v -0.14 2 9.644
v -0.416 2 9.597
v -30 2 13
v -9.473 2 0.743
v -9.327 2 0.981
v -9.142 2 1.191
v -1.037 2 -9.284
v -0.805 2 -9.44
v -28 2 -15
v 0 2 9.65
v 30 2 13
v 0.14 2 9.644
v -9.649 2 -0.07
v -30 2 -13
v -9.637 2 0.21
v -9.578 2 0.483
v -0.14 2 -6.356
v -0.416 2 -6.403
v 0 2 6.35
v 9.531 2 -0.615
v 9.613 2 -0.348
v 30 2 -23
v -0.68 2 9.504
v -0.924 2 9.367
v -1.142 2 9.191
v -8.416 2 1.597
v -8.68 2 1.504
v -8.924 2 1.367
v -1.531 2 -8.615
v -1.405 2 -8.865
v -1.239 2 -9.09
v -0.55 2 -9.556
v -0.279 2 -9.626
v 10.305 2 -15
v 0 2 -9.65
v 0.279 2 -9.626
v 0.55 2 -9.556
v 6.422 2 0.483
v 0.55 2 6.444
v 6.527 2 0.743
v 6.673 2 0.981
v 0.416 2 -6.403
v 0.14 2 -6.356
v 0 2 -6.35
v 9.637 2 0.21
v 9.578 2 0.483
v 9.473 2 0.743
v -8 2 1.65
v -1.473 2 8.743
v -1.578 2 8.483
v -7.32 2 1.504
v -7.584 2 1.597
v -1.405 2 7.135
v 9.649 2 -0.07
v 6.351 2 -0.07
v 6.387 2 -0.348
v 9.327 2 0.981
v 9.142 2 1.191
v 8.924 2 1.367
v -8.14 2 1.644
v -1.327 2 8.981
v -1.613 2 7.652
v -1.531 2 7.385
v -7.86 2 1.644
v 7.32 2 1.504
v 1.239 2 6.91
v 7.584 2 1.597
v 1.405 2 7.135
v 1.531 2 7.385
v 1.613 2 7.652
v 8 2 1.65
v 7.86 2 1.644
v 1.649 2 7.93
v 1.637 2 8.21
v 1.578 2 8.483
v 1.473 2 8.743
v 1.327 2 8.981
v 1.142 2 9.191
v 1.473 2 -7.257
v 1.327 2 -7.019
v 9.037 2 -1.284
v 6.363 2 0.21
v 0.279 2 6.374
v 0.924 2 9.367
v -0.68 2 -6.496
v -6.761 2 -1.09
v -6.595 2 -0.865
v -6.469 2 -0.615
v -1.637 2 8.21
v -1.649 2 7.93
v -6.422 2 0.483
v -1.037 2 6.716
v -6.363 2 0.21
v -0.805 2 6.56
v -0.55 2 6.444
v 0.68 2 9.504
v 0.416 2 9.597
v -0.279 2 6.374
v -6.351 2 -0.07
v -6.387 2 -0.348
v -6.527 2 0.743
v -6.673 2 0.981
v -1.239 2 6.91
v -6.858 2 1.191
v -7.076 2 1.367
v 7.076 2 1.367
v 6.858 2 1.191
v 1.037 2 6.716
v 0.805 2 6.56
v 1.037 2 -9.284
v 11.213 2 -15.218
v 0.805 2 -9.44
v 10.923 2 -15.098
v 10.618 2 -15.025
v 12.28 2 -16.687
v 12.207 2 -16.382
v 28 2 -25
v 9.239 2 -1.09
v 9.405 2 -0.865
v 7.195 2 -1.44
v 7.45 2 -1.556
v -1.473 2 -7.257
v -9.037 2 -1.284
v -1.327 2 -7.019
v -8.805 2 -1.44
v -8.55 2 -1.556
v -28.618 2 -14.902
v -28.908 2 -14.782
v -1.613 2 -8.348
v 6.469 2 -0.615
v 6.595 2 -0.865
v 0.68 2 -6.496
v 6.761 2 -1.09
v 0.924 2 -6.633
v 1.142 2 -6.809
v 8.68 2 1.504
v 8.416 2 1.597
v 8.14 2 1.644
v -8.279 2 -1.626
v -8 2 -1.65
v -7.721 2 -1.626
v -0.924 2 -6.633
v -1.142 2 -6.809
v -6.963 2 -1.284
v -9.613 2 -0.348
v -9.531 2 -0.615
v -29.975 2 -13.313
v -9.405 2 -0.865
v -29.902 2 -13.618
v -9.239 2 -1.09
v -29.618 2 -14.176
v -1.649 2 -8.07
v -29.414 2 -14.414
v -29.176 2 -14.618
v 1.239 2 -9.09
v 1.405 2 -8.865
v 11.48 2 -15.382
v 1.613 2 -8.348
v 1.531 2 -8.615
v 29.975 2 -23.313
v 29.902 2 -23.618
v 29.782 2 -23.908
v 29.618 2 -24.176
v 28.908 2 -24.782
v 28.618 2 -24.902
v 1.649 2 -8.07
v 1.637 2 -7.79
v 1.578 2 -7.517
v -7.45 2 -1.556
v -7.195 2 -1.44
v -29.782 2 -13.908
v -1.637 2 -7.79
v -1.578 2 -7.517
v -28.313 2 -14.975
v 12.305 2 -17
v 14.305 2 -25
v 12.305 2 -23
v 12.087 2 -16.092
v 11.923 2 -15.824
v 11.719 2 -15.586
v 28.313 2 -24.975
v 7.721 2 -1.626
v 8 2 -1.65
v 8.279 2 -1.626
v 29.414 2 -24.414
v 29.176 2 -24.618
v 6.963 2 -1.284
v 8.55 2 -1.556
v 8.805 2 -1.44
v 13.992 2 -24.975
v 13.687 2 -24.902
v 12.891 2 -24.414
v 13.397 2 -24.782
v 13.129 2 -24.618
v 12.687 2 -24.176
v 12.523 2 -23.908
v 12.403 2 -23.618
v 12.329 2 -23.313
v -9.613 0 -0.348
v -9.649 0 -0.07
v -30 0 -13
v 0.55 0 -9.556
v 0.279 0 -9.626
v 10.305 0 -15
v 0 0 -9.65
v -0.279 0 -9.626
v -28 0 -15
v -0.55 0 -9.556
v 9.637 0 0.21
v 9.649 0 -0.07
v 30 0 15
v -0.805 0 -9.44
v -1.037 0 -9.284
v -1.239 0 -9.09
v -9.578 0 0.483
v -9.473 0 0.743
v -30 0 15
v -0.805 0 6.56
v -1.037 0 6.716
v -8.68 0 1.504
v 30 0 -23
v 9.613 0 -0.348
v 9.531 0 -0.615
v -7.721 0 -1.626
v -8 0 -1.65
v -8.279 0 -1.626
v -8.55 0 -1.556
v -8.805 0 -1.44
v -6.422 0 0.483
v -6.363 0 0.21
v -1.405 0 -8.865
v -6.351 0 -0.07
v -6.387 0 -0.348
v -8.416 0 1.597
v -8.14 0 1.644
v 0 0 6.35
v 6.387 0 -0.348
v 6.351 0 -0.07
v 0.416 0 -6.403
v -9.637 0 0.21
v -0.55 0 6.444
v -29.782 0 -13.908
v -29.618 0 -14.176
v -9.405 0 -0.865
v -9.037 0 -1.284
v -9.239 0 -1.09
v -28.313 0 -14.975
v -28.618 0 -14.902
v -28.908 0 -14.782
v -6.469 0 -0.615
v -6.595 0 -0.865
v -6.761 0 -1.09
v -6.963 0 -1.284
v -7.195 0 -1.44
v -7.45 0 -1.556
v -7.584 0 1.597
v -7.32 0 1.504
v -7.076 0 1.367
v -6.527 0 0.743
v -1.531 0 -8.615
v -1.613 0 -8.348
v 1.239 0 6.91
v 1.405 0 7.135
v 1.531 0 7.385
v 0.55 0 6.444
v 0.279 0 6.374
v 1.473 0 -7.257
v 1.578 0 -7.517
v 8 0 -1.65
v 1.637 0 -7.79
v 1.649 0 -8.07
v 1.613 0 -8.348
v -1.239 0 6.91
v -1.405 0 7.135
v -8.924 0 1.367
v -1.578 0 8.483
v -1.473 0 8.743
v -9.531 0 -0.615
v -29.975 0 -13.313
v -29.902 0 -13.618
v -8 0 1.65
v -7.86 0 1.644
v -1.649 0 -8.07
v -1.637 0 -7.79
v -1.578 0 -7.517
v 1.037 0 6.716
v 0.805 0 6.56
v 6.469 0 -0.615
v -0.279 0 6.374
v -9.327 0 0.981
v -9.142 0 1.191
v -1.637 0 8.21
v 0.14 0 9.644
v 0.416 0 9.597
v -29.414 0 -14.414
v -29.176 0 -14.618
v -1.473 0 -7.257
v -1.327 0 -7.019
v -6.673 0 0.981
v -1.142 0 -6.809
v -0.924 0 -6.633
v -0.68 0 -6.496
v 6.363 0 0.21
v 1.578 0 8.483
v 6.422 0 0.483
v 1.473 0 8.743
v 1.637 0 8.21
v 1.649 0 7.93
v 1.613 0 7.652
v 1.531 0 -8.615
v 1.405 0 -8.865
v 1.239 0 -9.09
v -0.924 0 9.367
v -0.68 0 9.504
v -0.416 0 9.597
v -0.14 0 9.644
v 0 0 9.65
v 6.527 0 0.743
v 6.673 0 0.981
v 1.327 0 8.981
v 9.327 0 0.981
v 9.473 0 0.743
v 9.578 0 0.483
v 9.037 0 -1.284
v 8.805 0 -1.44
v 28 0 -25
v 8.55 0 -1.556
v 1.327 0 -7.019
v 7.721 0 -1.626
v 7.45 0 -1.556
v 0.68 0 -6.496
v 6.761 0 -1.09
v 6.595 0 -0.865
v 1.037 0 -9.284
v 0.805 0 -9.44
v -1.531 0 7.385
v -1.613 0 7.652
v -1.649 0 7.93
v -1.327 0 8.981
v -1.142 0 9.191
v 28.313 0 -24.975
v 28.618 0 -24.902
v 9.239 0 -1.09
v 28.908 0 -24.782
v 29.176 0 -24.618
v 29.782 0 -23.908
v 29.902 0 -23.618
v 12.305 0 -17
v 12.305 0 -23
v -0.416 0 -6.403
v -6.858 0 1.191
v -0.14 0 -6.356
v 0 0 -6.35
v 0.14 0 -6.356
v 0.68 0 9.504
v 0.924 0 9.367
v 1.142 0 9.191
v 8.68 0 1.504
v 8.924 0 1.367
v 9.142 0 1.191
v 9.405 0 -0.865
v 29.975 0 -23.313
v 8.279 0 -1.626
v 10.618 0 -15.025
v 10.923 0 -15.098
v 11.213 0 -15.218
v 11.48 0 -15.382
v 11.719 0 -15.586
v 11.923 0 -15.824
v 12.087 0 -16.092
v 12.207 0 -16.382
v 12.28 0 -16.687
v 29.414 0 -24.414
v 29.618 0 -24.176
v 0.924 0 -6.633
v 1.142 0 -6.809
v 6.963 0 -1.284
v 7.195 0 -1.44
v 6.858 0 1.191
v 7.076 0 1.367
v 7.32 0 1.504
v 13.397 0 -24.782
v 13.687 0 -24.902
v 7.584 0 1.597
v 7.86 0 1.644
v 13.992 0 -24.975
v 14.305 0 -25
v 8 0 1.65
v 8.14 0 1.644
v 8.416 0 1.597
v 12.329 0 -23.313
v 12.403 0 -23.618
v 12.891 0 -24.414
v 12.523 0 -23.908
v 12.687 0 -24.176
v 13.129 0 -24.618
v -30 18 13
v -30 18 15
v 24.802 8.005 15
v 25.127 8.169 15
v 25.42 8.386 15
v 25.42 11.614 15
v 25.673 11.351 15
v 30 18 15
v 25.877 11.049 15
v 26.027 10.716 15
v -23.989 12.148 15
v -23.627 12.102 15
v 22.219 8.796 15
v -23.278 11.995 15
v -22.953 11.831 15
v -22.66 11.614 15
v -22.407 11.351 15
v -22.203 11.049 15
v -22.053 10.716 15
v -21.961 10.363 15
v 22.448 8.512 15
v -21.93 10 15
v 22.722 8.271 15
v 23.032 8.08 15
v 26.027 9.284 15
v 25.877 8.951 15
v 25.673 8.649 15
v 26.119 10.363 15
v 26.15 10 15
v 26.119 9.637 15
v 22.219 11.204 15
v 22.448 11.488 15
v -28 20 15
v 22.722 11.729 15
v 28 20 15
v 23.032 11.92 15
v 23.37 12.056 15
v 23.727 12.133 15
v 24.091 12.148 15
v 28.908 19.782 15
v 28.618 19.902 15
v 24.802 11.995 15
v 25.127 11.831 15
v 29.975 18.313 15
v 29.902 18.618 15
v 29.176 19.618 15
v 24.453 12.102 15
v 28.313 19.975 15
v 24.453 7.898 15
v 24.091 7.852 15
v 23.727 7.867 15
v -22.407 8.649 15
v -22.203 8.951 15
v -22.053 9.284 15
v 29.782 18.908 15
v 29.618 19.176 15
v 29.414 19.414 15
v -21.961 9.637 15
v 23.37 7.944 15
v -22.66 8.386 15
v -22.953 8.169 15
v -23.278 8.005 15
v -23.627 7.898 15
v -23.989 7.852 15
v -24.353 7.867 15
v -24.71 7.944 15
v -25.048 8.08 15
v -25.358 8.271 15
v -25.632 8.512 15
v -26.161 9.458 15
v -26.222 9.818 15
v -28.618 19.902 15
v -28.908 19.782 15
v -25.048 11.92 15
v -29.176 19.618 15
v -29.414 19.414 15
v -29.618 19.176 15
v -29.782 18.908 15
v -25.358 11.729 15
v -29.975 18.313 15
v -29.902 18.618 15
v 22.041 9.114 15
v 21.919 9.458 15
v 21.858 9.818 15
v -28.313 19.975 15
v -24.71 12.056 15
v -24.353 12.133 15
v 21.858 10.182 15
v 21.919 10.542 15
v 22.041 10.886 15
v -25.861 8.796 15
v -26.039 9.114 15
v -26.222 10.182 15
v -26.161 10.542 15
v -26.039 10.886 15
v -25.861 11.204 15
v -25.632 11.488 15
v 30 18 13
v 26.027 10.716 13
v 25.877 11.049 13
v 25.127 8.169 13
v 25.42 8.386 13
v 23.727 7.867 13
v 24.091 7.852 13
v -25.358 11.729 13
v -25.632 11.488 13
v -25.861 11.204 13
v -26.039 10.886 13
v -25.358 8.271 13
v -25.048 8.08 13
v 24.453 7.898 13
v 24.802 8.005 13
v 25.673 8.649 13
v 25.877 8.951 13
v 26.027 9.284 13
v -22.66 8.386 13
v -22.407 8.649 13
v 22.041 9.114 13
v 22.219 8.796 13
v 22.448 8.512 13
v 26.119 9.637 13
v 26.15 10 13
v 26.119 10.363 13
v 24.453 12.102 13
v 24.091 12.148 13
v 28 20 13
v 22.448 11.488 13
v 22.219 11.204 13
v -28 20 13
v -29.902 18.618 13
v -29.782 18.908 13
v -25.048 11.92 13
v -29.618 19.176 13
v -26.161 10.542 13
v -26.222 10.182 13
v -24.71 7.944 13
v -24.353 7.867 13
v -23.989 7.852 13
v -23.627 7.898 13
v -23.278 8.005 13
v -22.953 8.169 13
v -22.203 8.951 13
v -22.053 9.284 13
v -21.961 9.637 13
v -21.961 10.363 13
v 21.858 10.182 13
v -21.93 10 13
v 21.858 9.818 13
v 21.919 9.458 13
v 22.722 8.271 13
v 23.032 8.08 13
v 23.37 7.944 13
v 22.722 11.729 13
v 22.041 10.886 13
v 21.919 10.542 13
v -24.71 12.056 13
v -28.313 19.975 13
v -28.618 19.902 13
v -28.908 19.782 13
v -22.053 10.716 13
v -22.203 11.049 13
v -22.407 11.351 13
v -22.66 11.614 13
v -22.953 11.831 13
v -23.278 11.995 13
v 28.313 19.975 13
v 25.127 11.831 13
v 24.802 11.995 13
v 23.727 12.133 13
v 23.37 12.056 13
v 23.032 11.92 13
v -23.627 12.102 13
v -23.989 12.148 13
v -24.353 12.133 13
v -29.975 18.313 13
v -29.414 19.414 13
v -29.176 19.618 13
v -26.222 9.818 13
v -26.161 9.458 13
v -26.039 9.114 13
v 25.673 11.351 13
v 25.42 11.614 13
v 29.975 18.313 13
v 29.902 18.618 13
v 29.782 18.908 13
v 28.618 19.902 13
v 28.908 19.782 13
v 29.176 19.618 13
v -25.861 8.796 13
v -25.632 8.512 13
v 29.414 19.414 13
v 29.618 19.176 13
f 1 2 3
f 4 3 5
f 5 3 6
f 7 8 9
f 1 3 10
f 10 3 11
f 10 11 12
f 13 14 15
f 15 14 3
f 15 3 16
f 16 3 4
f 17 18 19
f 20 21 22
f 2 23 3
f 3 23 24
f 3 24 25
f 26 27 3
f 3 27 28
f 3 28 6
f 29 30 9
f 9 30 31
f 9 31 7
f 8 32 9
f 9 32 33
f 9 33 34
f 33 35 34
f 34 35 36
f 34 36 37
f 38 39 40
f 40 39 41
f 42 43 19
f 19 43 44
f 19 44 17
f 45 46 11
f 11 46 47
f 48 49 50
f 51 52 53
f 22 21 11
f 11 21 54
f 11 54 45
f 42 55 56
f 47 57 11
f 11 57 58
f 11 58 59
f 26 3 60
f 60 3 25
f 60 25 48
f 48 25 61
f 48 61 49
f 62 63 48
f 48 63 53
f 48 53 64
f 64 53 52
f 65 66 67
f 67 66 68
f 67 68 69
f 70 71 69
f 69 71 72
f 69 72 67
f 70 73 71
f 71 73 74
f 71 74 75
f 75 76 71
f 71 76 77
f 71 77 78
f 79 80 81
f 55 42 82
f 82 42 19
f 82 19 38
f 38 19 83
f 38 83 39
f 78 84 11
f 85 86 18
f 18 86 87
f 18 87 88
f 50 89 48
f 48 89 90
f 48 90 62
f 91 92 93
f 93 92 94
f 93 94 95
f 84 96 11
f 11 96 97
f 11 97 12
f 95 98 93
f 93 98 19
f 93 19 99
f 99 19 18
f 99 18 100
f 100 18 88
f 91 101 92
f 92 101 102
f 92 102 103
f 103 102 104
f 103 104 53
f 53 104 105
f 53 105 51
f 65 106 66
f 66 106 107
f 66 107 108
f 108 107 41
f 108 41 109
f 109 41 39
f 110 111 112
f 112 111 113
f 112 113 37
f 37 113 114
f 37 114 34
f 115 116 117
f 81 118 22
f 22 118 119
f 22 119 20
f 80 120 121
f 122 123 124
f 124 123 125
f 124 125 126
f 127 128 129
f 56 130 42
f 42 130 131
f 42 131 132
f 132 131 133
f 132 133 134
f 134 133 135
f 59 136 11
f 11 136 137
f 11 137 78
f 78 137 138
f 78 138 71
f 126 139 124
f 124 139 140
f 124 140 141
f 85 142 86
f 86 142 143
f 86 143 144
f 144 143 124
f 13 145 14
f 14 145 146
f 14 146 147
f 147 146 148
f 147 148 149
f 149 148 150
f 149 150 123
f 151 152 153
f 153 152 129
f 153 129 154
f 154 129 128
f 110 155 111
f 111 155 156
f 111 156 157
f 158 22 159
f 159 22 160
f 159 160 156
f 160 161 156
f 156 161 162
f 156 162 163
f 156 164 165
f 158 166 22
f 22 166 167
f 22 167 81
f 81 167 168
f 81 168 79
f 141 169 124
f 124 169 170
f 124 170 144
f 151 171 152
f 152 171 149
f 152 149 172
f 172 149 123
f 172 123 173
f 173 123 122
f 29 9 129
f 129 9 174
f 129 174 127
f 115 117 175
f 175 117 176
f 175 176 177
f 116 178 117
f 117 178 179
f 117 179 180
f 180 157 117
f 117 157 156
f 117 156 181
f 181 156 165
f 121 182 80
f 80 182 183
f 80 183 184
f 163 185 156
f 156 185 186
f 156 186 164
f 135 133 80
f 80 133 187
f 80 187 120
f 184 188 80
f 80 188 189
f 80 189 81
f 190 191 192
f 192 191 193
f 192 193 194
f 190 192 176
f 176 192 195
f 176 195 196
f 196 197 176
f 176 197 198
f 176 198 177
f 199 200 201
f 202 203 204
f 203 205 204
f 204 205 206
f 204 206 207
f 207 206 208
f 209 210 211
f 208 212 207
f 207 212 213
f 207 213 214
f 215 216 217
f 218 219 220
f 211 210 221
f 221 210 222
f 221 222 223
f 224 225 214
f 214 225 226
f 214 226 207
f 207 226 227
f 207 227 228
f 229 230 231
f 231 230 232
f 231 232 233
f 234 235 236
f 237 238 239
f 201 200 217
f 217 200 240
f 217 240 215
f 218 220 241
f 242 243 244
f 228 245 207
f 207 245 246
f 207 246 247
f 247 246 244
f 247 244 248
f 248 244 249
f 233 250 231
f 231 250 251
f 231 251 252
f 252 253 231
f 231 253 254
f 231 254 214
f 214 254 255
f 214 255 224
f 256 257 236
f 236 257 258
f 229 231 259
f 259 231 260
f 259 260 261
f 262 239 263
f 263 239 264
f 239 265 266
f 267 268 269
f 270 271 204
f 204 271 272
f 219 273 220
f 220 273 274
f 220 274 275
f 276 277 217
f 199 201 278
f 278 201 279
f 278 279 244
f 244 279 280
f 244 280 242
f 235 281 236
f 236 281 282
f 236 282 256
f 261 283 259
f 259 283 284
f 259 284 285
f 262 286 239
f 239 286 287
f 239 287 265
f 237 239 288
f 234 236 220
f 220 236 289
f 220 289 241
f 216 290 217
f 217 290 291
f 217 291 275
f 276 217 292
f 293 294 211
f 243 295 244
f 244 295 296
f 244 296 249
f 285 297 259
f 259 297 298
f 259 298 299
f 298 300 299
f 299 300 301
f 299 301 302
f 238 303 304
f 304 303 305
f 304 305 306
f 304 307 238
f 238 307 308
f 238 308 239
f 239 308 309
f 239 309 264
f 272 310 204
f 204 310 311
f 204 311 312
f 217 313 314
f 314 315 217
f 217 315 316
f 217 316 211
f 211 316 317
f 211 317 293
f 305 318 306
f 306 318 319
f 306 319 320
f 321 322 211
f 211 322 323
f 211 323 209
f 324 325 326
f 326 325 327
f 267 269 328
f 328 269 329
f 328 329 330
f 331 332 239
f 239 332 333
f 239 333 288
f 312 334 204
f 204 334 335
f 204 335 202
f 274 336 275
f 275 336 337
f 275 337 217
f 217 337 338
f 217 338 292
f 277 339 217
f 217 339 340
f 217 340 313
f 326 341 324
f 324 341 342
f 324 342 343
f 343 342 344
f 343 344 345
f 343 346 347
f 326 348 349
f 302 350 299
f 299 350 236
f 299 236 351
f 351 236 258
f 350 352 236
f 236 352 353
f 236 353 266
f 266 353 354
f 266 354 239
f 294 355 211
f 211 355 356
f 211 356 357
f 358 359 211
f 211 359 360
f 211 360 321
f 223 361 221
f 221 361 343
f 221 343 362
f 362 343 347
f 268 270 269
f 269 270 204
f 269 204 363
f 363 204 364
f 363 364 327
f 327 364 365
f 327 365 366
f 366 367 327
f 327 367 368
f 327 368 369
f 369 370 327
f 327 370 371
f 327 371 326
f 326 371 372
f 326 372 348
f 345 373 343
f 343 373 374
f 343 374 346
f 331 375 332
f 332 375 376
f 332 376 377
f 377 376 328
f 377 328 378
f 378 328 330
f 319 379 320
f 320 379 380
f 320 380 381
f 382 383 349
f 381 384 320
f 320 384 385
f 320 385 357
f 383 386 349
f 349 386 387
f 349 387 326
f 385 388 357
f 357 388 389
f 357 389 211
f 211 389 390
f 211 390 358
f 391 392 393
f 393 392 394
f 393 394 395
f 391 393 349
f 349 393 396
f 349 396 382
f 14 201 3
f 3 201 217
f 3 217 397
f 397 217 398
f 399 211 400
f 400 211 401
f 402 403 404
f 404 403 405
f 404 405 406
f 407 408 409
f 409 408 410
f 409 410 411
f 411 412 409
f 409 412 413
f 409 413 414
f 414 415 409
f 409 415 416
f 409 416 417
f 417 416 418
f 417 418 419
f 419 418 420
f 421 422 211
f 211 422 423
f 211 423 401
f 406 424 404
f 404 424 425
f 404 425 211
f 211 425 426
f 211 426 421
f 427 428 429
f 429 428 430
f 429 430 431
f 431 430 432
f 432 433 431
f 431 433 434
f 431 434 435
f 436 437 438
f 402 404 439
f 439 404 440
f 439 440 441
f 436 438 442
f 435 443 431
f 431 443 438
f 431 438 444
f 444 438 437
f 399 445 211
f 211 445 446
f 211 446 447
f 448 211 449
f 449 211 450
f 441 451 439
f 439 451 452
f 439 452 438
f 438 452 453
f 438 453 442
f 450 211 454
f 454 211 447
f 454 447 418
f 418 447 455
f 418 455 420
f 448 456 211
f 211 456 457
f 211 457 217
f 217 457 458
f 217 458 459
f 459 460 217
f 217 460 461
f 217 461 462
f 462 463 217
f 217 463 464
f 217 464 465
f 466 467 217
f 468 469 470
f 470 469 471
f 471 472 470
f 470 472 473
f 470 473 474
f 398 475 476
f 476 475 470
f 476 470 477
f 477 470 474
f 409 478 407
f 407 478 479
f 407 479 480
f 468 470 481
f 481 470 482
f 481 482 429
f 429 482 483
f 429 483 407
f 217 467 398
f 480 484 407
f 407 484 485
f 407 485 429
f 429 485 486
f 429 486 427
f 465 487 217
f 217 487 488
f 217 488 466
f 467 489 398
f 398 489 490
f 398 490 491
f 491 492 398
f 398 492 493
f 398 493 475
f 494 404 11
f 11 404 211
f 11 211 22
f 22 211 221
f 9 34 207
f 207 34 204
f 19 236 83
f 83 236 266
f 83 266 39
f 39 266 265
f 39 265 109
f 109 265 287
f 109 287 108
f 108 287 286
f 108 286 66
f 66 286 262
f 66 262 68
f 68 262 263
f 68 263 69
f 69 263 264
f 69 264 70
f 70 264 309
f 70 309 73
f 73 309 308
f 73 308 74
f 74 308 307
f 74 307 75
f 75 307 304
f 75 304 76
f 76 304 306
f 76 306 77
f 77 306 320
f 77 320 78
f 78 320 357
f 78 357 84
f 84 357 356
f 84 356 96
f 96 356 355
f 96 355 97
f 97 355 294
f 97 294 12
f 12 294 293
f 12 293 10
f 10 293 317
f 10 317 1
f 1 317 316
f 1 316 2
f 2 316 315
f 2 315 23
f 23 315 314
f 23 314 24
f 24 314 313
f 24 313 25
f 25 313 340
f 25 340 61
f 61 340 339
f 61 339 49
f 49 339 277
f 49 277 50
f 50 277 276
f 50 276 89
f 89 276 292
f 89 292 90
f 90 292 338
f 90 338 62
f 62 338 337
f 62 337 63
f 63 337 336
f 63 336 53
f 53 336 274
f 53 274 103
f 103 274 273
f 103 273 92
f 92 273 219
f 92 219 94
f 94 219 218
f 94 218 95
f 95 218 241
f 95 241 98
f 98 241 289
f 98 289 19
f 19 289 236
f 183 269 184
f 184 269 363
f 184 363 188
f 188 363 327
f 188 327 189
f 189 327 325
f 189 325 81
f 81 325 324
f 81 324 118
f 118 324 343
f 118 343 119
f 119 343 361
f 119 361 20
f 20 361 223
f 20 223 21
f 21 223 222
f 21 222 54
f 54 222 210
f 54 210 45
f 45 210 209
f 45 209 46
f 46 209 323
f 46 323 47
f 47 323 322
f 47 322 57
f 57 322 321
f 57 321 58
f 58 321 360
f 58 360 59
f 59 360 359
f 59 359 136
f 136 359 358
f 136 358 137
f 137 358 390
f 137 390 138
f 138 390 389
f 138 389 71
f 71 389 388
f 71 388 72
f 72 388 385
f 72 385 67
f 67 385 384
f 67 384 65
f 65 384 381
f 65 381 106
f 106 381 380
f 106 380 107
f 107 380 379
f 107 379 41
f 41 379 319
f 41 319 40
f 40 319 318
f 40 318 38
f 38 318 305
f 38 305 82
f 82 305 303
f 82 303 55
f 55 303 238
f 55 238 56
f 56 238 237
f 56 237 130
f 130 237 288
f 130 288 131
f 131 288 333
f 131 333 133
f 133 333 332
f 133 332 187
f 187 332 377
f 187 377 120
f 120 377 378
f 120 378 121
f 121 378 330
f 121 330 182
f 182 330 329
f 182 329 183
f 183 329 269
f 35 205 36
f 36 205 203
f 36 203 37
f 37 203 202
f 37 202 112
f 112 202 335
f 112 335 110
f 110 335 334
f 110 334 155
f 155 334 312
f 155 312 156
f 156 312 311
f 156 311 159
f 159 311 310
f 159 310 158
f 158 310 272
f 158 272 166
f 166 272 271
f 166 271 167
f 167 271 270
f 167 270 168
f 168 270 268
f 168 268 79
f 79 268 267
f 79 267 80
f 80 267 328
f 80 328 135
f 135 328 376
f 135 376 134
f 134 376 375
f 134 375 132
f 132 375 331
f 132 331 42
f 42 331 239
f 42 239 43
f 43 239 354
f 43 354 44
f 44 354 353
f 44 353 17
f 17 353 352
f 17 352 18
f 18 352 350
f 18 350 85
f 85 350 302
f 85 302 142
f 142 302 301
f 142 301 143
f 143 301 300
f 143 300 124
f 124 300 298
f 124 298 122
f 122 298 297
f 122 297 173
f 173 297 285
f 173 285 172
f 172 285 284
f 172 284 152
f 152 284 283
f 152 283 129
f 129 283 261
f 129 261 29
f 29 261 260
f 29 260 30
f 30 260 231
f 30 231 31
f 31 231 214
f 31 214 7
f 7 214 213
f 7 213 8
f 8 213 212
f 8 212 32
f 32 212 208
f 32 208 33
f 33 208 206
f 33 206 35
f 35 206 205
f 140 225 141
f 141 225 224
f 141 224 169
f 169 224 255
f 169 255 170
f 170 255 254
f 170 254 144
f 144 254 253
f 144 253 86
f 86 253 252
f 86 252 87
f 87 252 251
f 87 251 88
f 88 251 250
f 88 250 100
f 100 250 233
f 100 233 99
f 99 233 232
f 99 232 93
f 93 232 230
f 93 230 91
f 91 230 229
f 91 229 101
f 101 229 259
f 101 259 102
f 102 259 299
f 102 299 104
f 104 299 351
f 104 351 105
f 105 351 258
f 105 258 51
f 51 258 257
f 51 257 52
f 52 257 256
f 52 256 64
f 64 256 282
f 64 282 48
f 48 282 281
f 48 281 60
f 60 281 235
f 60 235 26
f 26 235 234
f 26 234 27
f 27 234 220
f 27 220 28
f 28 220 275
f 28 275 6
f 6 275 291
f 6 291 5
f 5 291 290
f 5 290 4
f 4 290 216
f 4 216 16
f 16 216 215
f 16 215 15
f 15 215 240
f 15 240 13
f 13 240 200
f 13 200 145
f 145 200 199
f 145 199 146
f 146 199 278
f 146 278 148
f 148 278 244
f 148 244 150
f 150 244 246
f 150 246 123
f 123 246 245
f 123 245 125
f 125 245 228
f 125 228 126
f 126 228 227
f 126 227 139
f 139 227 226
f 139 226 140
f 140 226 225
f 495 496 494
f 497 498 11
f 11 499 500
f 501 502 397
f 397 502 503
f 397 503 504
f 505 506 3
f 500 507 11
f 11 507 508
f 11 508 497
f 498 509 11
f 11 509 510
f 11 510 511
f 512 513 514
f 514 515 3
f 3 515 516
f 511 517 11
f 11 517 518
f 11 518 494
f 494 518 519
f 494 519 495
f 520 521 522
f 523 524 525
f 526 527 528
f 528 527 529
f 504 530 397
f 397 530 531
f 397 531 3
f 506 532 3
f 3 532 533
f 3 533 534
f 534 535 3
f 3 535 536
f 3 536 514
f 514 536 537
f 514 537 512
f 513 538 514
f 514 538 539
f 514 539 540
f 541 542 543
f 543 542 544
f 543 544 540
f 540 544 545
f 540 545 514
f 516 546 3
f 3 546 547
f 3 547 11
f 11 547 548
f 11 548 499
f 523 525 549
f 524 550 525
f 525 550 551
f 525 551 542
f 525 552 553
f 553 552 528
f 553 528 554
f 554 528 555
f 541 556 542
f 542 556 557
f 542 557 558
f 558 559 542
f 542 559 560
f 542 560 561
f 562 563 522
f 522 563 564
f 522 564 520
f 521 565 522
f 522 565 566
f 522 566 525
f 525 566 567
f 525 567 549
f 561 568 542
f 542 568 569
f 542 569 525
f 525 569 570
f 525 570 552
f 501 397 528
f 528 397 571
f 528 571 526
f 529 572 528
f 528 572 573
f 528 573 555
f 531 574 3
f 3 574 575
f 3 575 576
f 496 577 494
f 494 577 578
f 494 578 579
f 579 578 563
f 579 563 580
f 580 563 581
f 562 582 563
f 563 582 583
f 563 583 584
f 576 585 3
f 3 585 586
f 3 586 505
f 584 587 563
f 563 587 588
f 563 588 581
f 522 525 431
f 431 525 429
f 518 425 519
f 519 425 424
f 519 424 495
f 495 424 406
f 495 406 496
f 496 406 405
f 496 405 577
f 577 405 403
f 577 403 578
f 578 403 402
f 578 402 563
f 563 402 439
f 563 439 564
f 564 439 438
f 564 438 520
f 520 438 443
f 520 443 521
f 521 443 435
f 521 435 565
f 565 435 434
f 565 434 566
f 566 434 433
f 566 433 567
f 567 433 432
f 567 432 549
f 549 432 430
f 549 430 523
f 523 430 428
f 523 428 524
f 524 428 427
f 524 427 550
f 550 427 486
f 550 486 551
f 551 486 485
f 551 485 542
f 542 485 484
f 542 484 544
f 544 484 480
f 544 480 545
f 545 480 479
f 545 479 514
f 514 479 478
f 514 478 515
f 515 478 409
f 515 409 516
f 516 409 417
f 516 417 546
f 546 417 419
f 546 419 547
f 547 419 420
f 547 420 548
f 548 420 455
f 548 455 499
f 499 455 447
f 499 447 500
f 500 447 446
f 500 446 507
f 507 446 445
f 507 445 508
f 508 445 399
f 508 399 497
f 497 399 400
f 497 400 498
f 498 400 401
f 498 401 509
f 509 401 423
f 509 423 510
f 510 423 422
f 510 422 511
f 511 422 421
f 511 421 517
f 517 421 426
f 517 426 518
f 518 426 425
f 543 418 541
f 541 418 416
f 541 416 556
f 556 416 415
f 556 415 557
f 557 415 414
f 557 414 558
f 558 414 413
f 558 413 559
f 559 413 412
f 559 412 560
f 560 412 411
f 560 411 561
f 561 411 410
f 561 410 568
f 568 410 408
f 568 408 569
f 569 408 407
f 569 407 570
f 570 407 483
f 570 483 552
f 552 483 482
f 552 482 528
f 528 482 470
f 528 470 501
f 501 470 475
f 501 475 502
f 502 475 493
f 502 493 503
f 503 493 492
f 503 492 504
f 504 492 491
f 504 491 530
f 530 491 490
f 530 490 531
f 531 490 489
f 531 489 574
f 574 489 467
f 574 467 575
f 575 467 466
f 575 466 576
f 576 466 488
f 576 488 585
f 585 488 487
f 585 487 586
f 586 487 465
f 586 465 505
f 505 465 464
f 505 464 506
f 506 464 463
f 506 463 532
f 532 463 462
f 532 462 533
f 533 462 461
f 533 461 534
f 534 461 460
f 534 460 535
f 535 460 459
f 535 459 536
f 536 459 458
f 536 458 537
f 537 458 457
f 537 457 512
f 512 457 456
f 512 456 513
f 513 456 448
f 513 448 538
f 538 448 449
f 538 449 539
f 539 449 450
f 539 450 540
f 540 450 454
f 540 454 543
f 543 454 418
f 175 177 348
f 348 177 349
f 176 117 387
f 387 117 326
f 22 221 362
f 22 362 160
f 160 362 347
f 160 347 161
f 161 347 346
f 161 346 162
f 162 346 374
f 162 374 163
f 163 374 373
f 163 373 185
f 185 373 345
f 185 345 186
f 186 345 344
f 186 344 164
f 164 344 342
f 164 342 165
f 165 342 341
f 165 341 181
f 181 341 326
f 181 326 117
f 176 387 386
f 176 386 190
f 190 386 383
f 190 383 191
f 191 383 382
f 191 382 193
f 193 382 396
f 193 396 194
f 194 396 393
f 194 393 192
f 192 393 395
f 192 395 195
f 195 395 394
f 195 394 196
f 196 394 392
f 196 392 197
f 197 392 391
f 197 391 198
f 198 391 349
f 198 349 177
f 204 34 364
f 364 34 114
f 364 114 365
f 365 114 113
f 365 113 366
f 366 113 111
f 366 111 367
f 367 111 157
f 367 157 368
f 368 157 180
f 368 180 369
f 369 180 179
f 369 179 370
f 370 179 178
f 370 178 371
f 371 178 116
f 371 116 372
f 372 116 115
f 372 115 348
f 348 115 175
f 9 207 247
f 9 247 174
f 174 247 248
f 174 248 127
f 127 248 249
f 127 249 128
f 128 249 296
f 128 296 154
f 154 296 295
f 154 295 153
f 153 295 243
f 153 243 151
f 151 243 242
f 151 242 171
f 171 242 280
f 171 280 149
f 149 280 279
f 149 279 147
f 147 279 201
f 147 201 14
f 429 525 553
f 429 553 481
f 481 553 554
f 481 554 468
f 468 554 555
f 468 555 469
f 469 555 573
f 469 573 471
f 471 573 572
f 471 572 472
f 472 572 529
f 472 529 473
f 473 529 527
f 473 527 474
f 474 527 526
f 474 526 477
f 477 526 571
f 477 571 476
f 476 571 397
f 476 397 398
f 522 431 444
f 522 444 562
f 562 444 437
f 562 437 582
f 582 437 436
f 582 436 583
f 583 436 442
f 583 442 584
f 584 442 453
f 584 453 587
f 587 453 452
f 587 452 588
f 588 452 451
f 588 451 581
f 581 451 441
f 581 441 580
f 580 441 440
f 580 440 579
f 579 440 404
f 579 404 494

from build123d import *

# Parameters (mm, degrees)
SKETCH_1_W      = 60
SKETCH_1_H      = 30
SKETCH_1_R      = 1.65
EXTRUDE_3_DEPTH = 2
SKETCH_3_W      = 60
SKETCH_3_H      = 20
SKETCH_3_R      = 2.15
EXTRUDE_4_DEPTH = 2
SKETCH_4_W      = 17.695256038
SKETCH_4_H      = 10
EXTRUDE_5_DEPTH = 2
FILLET_1_R      = 2
FILLET_2_R      = 2
FILLET_3_R      = 2
FILLET_4_R      = 2
FILLET_5_R      = 2
FILLET_6_R      = 2


with BuildPart() as part:
    # 草图1 → 凸台-拉伸3 (new body)
    with BuildSketch(Plane(origin=(0, 0, 0), x_dir=(1, 0, 0), z_dir=(0, 1, 0))):
        Rectangle(SKETCH_1_W, SKETCH_1_H)
        with Locations((0, 8)):
            Circle(SKETCH_1_R, mode=Mode.SUBTRACT)
        with Locations((0, -8)):
            Circle(SKETCH_1_R, mode=Mode.SUBTRACT)
        with Locations((8, 0)):
            Circle(SKETCH_1_R, mode=Mode.SUBTRACT)
        with Locations((-8, 0)):
            Circle(SKETCH_1_R, mode=Mode.SUBTRACT)
    extrude(amount=EXTRUDE_3_DEPTH)

    # 草图3 → 凸台-拉伸4 (add)
    with BuildSketch(Plane.XY.offset(15)):
        with Locations((0, 10)):
            Rectangle(SKETCH_3_W, SKETCH_3_H)
        with Locations((24, 10)):
            Circle(SKETCH_3_R, mode=Mode.SUBTRACT)
        with Locations((-24.08, 10)):
            Circle(SKETCH_3_R, mode=Mode.SUBTRACT)
    extrude(amount=-EXTRUDE_4_DEPTH)

    # 草图4 → 凸台-拉伸5 (add)
    with BuildSketch(Plane(origin=(0, 2, 0), x_dir=(1, 0, 0), z_dir=(0, 1, 0))):
        with Locations((21.152371981, 20)):
            Rectangle(SKETCH_4_W, SKETCH_4_H)
    extrude(amount=-EXTRUDE_5_DEPTH)

    # 圆角1
    fillet_1_edges = [part.edges().sort_by_distance(p)[0] for p in [
        (30, 1, -25),
    ]]
    fillet(fillet_1_edges, radius=FILLET_1_R)

    # 圆角2
    fillet_2_edges = [part.edges().sort_by_distance(p)[0] for p in [
        (12.304743962, 1, -25),
    ]]
    fillet(fillet_2_edges, radius=FILLET_2_R)

    # 圆角3
    fillet_3_edges = [part.edges().sort_by_distance(p)[0] for p in [
        (12.304743962, 1, -15),
    ]]
    fillet(fillet_3_edges, radius=FILLET_3_R)

    # 圆角4
    fillet_4_edges = [part.edges().sort_by_distance(p)[0] for p in [
        (-30, 1, -15),
    ]]
    fillet(fillet_4_edges, radius=FILLET_4_R)

    # 圆角5
    fillet_5_edges = [part.edges().sort_by_distance(p)[0] for p in [
        (-30, 20, 14),
    ]]
    fillet(fillet_5_edges, radius=FILLET_5_R)

    # 圆角6
    fillet_6_edges = [part.edges().sort_by_distance(p)[0] for p in [
        (30, 20, 14),
    ]]
    fillet(fillet_6_edges, radius=FILLET_6_R)


solid = part.part
